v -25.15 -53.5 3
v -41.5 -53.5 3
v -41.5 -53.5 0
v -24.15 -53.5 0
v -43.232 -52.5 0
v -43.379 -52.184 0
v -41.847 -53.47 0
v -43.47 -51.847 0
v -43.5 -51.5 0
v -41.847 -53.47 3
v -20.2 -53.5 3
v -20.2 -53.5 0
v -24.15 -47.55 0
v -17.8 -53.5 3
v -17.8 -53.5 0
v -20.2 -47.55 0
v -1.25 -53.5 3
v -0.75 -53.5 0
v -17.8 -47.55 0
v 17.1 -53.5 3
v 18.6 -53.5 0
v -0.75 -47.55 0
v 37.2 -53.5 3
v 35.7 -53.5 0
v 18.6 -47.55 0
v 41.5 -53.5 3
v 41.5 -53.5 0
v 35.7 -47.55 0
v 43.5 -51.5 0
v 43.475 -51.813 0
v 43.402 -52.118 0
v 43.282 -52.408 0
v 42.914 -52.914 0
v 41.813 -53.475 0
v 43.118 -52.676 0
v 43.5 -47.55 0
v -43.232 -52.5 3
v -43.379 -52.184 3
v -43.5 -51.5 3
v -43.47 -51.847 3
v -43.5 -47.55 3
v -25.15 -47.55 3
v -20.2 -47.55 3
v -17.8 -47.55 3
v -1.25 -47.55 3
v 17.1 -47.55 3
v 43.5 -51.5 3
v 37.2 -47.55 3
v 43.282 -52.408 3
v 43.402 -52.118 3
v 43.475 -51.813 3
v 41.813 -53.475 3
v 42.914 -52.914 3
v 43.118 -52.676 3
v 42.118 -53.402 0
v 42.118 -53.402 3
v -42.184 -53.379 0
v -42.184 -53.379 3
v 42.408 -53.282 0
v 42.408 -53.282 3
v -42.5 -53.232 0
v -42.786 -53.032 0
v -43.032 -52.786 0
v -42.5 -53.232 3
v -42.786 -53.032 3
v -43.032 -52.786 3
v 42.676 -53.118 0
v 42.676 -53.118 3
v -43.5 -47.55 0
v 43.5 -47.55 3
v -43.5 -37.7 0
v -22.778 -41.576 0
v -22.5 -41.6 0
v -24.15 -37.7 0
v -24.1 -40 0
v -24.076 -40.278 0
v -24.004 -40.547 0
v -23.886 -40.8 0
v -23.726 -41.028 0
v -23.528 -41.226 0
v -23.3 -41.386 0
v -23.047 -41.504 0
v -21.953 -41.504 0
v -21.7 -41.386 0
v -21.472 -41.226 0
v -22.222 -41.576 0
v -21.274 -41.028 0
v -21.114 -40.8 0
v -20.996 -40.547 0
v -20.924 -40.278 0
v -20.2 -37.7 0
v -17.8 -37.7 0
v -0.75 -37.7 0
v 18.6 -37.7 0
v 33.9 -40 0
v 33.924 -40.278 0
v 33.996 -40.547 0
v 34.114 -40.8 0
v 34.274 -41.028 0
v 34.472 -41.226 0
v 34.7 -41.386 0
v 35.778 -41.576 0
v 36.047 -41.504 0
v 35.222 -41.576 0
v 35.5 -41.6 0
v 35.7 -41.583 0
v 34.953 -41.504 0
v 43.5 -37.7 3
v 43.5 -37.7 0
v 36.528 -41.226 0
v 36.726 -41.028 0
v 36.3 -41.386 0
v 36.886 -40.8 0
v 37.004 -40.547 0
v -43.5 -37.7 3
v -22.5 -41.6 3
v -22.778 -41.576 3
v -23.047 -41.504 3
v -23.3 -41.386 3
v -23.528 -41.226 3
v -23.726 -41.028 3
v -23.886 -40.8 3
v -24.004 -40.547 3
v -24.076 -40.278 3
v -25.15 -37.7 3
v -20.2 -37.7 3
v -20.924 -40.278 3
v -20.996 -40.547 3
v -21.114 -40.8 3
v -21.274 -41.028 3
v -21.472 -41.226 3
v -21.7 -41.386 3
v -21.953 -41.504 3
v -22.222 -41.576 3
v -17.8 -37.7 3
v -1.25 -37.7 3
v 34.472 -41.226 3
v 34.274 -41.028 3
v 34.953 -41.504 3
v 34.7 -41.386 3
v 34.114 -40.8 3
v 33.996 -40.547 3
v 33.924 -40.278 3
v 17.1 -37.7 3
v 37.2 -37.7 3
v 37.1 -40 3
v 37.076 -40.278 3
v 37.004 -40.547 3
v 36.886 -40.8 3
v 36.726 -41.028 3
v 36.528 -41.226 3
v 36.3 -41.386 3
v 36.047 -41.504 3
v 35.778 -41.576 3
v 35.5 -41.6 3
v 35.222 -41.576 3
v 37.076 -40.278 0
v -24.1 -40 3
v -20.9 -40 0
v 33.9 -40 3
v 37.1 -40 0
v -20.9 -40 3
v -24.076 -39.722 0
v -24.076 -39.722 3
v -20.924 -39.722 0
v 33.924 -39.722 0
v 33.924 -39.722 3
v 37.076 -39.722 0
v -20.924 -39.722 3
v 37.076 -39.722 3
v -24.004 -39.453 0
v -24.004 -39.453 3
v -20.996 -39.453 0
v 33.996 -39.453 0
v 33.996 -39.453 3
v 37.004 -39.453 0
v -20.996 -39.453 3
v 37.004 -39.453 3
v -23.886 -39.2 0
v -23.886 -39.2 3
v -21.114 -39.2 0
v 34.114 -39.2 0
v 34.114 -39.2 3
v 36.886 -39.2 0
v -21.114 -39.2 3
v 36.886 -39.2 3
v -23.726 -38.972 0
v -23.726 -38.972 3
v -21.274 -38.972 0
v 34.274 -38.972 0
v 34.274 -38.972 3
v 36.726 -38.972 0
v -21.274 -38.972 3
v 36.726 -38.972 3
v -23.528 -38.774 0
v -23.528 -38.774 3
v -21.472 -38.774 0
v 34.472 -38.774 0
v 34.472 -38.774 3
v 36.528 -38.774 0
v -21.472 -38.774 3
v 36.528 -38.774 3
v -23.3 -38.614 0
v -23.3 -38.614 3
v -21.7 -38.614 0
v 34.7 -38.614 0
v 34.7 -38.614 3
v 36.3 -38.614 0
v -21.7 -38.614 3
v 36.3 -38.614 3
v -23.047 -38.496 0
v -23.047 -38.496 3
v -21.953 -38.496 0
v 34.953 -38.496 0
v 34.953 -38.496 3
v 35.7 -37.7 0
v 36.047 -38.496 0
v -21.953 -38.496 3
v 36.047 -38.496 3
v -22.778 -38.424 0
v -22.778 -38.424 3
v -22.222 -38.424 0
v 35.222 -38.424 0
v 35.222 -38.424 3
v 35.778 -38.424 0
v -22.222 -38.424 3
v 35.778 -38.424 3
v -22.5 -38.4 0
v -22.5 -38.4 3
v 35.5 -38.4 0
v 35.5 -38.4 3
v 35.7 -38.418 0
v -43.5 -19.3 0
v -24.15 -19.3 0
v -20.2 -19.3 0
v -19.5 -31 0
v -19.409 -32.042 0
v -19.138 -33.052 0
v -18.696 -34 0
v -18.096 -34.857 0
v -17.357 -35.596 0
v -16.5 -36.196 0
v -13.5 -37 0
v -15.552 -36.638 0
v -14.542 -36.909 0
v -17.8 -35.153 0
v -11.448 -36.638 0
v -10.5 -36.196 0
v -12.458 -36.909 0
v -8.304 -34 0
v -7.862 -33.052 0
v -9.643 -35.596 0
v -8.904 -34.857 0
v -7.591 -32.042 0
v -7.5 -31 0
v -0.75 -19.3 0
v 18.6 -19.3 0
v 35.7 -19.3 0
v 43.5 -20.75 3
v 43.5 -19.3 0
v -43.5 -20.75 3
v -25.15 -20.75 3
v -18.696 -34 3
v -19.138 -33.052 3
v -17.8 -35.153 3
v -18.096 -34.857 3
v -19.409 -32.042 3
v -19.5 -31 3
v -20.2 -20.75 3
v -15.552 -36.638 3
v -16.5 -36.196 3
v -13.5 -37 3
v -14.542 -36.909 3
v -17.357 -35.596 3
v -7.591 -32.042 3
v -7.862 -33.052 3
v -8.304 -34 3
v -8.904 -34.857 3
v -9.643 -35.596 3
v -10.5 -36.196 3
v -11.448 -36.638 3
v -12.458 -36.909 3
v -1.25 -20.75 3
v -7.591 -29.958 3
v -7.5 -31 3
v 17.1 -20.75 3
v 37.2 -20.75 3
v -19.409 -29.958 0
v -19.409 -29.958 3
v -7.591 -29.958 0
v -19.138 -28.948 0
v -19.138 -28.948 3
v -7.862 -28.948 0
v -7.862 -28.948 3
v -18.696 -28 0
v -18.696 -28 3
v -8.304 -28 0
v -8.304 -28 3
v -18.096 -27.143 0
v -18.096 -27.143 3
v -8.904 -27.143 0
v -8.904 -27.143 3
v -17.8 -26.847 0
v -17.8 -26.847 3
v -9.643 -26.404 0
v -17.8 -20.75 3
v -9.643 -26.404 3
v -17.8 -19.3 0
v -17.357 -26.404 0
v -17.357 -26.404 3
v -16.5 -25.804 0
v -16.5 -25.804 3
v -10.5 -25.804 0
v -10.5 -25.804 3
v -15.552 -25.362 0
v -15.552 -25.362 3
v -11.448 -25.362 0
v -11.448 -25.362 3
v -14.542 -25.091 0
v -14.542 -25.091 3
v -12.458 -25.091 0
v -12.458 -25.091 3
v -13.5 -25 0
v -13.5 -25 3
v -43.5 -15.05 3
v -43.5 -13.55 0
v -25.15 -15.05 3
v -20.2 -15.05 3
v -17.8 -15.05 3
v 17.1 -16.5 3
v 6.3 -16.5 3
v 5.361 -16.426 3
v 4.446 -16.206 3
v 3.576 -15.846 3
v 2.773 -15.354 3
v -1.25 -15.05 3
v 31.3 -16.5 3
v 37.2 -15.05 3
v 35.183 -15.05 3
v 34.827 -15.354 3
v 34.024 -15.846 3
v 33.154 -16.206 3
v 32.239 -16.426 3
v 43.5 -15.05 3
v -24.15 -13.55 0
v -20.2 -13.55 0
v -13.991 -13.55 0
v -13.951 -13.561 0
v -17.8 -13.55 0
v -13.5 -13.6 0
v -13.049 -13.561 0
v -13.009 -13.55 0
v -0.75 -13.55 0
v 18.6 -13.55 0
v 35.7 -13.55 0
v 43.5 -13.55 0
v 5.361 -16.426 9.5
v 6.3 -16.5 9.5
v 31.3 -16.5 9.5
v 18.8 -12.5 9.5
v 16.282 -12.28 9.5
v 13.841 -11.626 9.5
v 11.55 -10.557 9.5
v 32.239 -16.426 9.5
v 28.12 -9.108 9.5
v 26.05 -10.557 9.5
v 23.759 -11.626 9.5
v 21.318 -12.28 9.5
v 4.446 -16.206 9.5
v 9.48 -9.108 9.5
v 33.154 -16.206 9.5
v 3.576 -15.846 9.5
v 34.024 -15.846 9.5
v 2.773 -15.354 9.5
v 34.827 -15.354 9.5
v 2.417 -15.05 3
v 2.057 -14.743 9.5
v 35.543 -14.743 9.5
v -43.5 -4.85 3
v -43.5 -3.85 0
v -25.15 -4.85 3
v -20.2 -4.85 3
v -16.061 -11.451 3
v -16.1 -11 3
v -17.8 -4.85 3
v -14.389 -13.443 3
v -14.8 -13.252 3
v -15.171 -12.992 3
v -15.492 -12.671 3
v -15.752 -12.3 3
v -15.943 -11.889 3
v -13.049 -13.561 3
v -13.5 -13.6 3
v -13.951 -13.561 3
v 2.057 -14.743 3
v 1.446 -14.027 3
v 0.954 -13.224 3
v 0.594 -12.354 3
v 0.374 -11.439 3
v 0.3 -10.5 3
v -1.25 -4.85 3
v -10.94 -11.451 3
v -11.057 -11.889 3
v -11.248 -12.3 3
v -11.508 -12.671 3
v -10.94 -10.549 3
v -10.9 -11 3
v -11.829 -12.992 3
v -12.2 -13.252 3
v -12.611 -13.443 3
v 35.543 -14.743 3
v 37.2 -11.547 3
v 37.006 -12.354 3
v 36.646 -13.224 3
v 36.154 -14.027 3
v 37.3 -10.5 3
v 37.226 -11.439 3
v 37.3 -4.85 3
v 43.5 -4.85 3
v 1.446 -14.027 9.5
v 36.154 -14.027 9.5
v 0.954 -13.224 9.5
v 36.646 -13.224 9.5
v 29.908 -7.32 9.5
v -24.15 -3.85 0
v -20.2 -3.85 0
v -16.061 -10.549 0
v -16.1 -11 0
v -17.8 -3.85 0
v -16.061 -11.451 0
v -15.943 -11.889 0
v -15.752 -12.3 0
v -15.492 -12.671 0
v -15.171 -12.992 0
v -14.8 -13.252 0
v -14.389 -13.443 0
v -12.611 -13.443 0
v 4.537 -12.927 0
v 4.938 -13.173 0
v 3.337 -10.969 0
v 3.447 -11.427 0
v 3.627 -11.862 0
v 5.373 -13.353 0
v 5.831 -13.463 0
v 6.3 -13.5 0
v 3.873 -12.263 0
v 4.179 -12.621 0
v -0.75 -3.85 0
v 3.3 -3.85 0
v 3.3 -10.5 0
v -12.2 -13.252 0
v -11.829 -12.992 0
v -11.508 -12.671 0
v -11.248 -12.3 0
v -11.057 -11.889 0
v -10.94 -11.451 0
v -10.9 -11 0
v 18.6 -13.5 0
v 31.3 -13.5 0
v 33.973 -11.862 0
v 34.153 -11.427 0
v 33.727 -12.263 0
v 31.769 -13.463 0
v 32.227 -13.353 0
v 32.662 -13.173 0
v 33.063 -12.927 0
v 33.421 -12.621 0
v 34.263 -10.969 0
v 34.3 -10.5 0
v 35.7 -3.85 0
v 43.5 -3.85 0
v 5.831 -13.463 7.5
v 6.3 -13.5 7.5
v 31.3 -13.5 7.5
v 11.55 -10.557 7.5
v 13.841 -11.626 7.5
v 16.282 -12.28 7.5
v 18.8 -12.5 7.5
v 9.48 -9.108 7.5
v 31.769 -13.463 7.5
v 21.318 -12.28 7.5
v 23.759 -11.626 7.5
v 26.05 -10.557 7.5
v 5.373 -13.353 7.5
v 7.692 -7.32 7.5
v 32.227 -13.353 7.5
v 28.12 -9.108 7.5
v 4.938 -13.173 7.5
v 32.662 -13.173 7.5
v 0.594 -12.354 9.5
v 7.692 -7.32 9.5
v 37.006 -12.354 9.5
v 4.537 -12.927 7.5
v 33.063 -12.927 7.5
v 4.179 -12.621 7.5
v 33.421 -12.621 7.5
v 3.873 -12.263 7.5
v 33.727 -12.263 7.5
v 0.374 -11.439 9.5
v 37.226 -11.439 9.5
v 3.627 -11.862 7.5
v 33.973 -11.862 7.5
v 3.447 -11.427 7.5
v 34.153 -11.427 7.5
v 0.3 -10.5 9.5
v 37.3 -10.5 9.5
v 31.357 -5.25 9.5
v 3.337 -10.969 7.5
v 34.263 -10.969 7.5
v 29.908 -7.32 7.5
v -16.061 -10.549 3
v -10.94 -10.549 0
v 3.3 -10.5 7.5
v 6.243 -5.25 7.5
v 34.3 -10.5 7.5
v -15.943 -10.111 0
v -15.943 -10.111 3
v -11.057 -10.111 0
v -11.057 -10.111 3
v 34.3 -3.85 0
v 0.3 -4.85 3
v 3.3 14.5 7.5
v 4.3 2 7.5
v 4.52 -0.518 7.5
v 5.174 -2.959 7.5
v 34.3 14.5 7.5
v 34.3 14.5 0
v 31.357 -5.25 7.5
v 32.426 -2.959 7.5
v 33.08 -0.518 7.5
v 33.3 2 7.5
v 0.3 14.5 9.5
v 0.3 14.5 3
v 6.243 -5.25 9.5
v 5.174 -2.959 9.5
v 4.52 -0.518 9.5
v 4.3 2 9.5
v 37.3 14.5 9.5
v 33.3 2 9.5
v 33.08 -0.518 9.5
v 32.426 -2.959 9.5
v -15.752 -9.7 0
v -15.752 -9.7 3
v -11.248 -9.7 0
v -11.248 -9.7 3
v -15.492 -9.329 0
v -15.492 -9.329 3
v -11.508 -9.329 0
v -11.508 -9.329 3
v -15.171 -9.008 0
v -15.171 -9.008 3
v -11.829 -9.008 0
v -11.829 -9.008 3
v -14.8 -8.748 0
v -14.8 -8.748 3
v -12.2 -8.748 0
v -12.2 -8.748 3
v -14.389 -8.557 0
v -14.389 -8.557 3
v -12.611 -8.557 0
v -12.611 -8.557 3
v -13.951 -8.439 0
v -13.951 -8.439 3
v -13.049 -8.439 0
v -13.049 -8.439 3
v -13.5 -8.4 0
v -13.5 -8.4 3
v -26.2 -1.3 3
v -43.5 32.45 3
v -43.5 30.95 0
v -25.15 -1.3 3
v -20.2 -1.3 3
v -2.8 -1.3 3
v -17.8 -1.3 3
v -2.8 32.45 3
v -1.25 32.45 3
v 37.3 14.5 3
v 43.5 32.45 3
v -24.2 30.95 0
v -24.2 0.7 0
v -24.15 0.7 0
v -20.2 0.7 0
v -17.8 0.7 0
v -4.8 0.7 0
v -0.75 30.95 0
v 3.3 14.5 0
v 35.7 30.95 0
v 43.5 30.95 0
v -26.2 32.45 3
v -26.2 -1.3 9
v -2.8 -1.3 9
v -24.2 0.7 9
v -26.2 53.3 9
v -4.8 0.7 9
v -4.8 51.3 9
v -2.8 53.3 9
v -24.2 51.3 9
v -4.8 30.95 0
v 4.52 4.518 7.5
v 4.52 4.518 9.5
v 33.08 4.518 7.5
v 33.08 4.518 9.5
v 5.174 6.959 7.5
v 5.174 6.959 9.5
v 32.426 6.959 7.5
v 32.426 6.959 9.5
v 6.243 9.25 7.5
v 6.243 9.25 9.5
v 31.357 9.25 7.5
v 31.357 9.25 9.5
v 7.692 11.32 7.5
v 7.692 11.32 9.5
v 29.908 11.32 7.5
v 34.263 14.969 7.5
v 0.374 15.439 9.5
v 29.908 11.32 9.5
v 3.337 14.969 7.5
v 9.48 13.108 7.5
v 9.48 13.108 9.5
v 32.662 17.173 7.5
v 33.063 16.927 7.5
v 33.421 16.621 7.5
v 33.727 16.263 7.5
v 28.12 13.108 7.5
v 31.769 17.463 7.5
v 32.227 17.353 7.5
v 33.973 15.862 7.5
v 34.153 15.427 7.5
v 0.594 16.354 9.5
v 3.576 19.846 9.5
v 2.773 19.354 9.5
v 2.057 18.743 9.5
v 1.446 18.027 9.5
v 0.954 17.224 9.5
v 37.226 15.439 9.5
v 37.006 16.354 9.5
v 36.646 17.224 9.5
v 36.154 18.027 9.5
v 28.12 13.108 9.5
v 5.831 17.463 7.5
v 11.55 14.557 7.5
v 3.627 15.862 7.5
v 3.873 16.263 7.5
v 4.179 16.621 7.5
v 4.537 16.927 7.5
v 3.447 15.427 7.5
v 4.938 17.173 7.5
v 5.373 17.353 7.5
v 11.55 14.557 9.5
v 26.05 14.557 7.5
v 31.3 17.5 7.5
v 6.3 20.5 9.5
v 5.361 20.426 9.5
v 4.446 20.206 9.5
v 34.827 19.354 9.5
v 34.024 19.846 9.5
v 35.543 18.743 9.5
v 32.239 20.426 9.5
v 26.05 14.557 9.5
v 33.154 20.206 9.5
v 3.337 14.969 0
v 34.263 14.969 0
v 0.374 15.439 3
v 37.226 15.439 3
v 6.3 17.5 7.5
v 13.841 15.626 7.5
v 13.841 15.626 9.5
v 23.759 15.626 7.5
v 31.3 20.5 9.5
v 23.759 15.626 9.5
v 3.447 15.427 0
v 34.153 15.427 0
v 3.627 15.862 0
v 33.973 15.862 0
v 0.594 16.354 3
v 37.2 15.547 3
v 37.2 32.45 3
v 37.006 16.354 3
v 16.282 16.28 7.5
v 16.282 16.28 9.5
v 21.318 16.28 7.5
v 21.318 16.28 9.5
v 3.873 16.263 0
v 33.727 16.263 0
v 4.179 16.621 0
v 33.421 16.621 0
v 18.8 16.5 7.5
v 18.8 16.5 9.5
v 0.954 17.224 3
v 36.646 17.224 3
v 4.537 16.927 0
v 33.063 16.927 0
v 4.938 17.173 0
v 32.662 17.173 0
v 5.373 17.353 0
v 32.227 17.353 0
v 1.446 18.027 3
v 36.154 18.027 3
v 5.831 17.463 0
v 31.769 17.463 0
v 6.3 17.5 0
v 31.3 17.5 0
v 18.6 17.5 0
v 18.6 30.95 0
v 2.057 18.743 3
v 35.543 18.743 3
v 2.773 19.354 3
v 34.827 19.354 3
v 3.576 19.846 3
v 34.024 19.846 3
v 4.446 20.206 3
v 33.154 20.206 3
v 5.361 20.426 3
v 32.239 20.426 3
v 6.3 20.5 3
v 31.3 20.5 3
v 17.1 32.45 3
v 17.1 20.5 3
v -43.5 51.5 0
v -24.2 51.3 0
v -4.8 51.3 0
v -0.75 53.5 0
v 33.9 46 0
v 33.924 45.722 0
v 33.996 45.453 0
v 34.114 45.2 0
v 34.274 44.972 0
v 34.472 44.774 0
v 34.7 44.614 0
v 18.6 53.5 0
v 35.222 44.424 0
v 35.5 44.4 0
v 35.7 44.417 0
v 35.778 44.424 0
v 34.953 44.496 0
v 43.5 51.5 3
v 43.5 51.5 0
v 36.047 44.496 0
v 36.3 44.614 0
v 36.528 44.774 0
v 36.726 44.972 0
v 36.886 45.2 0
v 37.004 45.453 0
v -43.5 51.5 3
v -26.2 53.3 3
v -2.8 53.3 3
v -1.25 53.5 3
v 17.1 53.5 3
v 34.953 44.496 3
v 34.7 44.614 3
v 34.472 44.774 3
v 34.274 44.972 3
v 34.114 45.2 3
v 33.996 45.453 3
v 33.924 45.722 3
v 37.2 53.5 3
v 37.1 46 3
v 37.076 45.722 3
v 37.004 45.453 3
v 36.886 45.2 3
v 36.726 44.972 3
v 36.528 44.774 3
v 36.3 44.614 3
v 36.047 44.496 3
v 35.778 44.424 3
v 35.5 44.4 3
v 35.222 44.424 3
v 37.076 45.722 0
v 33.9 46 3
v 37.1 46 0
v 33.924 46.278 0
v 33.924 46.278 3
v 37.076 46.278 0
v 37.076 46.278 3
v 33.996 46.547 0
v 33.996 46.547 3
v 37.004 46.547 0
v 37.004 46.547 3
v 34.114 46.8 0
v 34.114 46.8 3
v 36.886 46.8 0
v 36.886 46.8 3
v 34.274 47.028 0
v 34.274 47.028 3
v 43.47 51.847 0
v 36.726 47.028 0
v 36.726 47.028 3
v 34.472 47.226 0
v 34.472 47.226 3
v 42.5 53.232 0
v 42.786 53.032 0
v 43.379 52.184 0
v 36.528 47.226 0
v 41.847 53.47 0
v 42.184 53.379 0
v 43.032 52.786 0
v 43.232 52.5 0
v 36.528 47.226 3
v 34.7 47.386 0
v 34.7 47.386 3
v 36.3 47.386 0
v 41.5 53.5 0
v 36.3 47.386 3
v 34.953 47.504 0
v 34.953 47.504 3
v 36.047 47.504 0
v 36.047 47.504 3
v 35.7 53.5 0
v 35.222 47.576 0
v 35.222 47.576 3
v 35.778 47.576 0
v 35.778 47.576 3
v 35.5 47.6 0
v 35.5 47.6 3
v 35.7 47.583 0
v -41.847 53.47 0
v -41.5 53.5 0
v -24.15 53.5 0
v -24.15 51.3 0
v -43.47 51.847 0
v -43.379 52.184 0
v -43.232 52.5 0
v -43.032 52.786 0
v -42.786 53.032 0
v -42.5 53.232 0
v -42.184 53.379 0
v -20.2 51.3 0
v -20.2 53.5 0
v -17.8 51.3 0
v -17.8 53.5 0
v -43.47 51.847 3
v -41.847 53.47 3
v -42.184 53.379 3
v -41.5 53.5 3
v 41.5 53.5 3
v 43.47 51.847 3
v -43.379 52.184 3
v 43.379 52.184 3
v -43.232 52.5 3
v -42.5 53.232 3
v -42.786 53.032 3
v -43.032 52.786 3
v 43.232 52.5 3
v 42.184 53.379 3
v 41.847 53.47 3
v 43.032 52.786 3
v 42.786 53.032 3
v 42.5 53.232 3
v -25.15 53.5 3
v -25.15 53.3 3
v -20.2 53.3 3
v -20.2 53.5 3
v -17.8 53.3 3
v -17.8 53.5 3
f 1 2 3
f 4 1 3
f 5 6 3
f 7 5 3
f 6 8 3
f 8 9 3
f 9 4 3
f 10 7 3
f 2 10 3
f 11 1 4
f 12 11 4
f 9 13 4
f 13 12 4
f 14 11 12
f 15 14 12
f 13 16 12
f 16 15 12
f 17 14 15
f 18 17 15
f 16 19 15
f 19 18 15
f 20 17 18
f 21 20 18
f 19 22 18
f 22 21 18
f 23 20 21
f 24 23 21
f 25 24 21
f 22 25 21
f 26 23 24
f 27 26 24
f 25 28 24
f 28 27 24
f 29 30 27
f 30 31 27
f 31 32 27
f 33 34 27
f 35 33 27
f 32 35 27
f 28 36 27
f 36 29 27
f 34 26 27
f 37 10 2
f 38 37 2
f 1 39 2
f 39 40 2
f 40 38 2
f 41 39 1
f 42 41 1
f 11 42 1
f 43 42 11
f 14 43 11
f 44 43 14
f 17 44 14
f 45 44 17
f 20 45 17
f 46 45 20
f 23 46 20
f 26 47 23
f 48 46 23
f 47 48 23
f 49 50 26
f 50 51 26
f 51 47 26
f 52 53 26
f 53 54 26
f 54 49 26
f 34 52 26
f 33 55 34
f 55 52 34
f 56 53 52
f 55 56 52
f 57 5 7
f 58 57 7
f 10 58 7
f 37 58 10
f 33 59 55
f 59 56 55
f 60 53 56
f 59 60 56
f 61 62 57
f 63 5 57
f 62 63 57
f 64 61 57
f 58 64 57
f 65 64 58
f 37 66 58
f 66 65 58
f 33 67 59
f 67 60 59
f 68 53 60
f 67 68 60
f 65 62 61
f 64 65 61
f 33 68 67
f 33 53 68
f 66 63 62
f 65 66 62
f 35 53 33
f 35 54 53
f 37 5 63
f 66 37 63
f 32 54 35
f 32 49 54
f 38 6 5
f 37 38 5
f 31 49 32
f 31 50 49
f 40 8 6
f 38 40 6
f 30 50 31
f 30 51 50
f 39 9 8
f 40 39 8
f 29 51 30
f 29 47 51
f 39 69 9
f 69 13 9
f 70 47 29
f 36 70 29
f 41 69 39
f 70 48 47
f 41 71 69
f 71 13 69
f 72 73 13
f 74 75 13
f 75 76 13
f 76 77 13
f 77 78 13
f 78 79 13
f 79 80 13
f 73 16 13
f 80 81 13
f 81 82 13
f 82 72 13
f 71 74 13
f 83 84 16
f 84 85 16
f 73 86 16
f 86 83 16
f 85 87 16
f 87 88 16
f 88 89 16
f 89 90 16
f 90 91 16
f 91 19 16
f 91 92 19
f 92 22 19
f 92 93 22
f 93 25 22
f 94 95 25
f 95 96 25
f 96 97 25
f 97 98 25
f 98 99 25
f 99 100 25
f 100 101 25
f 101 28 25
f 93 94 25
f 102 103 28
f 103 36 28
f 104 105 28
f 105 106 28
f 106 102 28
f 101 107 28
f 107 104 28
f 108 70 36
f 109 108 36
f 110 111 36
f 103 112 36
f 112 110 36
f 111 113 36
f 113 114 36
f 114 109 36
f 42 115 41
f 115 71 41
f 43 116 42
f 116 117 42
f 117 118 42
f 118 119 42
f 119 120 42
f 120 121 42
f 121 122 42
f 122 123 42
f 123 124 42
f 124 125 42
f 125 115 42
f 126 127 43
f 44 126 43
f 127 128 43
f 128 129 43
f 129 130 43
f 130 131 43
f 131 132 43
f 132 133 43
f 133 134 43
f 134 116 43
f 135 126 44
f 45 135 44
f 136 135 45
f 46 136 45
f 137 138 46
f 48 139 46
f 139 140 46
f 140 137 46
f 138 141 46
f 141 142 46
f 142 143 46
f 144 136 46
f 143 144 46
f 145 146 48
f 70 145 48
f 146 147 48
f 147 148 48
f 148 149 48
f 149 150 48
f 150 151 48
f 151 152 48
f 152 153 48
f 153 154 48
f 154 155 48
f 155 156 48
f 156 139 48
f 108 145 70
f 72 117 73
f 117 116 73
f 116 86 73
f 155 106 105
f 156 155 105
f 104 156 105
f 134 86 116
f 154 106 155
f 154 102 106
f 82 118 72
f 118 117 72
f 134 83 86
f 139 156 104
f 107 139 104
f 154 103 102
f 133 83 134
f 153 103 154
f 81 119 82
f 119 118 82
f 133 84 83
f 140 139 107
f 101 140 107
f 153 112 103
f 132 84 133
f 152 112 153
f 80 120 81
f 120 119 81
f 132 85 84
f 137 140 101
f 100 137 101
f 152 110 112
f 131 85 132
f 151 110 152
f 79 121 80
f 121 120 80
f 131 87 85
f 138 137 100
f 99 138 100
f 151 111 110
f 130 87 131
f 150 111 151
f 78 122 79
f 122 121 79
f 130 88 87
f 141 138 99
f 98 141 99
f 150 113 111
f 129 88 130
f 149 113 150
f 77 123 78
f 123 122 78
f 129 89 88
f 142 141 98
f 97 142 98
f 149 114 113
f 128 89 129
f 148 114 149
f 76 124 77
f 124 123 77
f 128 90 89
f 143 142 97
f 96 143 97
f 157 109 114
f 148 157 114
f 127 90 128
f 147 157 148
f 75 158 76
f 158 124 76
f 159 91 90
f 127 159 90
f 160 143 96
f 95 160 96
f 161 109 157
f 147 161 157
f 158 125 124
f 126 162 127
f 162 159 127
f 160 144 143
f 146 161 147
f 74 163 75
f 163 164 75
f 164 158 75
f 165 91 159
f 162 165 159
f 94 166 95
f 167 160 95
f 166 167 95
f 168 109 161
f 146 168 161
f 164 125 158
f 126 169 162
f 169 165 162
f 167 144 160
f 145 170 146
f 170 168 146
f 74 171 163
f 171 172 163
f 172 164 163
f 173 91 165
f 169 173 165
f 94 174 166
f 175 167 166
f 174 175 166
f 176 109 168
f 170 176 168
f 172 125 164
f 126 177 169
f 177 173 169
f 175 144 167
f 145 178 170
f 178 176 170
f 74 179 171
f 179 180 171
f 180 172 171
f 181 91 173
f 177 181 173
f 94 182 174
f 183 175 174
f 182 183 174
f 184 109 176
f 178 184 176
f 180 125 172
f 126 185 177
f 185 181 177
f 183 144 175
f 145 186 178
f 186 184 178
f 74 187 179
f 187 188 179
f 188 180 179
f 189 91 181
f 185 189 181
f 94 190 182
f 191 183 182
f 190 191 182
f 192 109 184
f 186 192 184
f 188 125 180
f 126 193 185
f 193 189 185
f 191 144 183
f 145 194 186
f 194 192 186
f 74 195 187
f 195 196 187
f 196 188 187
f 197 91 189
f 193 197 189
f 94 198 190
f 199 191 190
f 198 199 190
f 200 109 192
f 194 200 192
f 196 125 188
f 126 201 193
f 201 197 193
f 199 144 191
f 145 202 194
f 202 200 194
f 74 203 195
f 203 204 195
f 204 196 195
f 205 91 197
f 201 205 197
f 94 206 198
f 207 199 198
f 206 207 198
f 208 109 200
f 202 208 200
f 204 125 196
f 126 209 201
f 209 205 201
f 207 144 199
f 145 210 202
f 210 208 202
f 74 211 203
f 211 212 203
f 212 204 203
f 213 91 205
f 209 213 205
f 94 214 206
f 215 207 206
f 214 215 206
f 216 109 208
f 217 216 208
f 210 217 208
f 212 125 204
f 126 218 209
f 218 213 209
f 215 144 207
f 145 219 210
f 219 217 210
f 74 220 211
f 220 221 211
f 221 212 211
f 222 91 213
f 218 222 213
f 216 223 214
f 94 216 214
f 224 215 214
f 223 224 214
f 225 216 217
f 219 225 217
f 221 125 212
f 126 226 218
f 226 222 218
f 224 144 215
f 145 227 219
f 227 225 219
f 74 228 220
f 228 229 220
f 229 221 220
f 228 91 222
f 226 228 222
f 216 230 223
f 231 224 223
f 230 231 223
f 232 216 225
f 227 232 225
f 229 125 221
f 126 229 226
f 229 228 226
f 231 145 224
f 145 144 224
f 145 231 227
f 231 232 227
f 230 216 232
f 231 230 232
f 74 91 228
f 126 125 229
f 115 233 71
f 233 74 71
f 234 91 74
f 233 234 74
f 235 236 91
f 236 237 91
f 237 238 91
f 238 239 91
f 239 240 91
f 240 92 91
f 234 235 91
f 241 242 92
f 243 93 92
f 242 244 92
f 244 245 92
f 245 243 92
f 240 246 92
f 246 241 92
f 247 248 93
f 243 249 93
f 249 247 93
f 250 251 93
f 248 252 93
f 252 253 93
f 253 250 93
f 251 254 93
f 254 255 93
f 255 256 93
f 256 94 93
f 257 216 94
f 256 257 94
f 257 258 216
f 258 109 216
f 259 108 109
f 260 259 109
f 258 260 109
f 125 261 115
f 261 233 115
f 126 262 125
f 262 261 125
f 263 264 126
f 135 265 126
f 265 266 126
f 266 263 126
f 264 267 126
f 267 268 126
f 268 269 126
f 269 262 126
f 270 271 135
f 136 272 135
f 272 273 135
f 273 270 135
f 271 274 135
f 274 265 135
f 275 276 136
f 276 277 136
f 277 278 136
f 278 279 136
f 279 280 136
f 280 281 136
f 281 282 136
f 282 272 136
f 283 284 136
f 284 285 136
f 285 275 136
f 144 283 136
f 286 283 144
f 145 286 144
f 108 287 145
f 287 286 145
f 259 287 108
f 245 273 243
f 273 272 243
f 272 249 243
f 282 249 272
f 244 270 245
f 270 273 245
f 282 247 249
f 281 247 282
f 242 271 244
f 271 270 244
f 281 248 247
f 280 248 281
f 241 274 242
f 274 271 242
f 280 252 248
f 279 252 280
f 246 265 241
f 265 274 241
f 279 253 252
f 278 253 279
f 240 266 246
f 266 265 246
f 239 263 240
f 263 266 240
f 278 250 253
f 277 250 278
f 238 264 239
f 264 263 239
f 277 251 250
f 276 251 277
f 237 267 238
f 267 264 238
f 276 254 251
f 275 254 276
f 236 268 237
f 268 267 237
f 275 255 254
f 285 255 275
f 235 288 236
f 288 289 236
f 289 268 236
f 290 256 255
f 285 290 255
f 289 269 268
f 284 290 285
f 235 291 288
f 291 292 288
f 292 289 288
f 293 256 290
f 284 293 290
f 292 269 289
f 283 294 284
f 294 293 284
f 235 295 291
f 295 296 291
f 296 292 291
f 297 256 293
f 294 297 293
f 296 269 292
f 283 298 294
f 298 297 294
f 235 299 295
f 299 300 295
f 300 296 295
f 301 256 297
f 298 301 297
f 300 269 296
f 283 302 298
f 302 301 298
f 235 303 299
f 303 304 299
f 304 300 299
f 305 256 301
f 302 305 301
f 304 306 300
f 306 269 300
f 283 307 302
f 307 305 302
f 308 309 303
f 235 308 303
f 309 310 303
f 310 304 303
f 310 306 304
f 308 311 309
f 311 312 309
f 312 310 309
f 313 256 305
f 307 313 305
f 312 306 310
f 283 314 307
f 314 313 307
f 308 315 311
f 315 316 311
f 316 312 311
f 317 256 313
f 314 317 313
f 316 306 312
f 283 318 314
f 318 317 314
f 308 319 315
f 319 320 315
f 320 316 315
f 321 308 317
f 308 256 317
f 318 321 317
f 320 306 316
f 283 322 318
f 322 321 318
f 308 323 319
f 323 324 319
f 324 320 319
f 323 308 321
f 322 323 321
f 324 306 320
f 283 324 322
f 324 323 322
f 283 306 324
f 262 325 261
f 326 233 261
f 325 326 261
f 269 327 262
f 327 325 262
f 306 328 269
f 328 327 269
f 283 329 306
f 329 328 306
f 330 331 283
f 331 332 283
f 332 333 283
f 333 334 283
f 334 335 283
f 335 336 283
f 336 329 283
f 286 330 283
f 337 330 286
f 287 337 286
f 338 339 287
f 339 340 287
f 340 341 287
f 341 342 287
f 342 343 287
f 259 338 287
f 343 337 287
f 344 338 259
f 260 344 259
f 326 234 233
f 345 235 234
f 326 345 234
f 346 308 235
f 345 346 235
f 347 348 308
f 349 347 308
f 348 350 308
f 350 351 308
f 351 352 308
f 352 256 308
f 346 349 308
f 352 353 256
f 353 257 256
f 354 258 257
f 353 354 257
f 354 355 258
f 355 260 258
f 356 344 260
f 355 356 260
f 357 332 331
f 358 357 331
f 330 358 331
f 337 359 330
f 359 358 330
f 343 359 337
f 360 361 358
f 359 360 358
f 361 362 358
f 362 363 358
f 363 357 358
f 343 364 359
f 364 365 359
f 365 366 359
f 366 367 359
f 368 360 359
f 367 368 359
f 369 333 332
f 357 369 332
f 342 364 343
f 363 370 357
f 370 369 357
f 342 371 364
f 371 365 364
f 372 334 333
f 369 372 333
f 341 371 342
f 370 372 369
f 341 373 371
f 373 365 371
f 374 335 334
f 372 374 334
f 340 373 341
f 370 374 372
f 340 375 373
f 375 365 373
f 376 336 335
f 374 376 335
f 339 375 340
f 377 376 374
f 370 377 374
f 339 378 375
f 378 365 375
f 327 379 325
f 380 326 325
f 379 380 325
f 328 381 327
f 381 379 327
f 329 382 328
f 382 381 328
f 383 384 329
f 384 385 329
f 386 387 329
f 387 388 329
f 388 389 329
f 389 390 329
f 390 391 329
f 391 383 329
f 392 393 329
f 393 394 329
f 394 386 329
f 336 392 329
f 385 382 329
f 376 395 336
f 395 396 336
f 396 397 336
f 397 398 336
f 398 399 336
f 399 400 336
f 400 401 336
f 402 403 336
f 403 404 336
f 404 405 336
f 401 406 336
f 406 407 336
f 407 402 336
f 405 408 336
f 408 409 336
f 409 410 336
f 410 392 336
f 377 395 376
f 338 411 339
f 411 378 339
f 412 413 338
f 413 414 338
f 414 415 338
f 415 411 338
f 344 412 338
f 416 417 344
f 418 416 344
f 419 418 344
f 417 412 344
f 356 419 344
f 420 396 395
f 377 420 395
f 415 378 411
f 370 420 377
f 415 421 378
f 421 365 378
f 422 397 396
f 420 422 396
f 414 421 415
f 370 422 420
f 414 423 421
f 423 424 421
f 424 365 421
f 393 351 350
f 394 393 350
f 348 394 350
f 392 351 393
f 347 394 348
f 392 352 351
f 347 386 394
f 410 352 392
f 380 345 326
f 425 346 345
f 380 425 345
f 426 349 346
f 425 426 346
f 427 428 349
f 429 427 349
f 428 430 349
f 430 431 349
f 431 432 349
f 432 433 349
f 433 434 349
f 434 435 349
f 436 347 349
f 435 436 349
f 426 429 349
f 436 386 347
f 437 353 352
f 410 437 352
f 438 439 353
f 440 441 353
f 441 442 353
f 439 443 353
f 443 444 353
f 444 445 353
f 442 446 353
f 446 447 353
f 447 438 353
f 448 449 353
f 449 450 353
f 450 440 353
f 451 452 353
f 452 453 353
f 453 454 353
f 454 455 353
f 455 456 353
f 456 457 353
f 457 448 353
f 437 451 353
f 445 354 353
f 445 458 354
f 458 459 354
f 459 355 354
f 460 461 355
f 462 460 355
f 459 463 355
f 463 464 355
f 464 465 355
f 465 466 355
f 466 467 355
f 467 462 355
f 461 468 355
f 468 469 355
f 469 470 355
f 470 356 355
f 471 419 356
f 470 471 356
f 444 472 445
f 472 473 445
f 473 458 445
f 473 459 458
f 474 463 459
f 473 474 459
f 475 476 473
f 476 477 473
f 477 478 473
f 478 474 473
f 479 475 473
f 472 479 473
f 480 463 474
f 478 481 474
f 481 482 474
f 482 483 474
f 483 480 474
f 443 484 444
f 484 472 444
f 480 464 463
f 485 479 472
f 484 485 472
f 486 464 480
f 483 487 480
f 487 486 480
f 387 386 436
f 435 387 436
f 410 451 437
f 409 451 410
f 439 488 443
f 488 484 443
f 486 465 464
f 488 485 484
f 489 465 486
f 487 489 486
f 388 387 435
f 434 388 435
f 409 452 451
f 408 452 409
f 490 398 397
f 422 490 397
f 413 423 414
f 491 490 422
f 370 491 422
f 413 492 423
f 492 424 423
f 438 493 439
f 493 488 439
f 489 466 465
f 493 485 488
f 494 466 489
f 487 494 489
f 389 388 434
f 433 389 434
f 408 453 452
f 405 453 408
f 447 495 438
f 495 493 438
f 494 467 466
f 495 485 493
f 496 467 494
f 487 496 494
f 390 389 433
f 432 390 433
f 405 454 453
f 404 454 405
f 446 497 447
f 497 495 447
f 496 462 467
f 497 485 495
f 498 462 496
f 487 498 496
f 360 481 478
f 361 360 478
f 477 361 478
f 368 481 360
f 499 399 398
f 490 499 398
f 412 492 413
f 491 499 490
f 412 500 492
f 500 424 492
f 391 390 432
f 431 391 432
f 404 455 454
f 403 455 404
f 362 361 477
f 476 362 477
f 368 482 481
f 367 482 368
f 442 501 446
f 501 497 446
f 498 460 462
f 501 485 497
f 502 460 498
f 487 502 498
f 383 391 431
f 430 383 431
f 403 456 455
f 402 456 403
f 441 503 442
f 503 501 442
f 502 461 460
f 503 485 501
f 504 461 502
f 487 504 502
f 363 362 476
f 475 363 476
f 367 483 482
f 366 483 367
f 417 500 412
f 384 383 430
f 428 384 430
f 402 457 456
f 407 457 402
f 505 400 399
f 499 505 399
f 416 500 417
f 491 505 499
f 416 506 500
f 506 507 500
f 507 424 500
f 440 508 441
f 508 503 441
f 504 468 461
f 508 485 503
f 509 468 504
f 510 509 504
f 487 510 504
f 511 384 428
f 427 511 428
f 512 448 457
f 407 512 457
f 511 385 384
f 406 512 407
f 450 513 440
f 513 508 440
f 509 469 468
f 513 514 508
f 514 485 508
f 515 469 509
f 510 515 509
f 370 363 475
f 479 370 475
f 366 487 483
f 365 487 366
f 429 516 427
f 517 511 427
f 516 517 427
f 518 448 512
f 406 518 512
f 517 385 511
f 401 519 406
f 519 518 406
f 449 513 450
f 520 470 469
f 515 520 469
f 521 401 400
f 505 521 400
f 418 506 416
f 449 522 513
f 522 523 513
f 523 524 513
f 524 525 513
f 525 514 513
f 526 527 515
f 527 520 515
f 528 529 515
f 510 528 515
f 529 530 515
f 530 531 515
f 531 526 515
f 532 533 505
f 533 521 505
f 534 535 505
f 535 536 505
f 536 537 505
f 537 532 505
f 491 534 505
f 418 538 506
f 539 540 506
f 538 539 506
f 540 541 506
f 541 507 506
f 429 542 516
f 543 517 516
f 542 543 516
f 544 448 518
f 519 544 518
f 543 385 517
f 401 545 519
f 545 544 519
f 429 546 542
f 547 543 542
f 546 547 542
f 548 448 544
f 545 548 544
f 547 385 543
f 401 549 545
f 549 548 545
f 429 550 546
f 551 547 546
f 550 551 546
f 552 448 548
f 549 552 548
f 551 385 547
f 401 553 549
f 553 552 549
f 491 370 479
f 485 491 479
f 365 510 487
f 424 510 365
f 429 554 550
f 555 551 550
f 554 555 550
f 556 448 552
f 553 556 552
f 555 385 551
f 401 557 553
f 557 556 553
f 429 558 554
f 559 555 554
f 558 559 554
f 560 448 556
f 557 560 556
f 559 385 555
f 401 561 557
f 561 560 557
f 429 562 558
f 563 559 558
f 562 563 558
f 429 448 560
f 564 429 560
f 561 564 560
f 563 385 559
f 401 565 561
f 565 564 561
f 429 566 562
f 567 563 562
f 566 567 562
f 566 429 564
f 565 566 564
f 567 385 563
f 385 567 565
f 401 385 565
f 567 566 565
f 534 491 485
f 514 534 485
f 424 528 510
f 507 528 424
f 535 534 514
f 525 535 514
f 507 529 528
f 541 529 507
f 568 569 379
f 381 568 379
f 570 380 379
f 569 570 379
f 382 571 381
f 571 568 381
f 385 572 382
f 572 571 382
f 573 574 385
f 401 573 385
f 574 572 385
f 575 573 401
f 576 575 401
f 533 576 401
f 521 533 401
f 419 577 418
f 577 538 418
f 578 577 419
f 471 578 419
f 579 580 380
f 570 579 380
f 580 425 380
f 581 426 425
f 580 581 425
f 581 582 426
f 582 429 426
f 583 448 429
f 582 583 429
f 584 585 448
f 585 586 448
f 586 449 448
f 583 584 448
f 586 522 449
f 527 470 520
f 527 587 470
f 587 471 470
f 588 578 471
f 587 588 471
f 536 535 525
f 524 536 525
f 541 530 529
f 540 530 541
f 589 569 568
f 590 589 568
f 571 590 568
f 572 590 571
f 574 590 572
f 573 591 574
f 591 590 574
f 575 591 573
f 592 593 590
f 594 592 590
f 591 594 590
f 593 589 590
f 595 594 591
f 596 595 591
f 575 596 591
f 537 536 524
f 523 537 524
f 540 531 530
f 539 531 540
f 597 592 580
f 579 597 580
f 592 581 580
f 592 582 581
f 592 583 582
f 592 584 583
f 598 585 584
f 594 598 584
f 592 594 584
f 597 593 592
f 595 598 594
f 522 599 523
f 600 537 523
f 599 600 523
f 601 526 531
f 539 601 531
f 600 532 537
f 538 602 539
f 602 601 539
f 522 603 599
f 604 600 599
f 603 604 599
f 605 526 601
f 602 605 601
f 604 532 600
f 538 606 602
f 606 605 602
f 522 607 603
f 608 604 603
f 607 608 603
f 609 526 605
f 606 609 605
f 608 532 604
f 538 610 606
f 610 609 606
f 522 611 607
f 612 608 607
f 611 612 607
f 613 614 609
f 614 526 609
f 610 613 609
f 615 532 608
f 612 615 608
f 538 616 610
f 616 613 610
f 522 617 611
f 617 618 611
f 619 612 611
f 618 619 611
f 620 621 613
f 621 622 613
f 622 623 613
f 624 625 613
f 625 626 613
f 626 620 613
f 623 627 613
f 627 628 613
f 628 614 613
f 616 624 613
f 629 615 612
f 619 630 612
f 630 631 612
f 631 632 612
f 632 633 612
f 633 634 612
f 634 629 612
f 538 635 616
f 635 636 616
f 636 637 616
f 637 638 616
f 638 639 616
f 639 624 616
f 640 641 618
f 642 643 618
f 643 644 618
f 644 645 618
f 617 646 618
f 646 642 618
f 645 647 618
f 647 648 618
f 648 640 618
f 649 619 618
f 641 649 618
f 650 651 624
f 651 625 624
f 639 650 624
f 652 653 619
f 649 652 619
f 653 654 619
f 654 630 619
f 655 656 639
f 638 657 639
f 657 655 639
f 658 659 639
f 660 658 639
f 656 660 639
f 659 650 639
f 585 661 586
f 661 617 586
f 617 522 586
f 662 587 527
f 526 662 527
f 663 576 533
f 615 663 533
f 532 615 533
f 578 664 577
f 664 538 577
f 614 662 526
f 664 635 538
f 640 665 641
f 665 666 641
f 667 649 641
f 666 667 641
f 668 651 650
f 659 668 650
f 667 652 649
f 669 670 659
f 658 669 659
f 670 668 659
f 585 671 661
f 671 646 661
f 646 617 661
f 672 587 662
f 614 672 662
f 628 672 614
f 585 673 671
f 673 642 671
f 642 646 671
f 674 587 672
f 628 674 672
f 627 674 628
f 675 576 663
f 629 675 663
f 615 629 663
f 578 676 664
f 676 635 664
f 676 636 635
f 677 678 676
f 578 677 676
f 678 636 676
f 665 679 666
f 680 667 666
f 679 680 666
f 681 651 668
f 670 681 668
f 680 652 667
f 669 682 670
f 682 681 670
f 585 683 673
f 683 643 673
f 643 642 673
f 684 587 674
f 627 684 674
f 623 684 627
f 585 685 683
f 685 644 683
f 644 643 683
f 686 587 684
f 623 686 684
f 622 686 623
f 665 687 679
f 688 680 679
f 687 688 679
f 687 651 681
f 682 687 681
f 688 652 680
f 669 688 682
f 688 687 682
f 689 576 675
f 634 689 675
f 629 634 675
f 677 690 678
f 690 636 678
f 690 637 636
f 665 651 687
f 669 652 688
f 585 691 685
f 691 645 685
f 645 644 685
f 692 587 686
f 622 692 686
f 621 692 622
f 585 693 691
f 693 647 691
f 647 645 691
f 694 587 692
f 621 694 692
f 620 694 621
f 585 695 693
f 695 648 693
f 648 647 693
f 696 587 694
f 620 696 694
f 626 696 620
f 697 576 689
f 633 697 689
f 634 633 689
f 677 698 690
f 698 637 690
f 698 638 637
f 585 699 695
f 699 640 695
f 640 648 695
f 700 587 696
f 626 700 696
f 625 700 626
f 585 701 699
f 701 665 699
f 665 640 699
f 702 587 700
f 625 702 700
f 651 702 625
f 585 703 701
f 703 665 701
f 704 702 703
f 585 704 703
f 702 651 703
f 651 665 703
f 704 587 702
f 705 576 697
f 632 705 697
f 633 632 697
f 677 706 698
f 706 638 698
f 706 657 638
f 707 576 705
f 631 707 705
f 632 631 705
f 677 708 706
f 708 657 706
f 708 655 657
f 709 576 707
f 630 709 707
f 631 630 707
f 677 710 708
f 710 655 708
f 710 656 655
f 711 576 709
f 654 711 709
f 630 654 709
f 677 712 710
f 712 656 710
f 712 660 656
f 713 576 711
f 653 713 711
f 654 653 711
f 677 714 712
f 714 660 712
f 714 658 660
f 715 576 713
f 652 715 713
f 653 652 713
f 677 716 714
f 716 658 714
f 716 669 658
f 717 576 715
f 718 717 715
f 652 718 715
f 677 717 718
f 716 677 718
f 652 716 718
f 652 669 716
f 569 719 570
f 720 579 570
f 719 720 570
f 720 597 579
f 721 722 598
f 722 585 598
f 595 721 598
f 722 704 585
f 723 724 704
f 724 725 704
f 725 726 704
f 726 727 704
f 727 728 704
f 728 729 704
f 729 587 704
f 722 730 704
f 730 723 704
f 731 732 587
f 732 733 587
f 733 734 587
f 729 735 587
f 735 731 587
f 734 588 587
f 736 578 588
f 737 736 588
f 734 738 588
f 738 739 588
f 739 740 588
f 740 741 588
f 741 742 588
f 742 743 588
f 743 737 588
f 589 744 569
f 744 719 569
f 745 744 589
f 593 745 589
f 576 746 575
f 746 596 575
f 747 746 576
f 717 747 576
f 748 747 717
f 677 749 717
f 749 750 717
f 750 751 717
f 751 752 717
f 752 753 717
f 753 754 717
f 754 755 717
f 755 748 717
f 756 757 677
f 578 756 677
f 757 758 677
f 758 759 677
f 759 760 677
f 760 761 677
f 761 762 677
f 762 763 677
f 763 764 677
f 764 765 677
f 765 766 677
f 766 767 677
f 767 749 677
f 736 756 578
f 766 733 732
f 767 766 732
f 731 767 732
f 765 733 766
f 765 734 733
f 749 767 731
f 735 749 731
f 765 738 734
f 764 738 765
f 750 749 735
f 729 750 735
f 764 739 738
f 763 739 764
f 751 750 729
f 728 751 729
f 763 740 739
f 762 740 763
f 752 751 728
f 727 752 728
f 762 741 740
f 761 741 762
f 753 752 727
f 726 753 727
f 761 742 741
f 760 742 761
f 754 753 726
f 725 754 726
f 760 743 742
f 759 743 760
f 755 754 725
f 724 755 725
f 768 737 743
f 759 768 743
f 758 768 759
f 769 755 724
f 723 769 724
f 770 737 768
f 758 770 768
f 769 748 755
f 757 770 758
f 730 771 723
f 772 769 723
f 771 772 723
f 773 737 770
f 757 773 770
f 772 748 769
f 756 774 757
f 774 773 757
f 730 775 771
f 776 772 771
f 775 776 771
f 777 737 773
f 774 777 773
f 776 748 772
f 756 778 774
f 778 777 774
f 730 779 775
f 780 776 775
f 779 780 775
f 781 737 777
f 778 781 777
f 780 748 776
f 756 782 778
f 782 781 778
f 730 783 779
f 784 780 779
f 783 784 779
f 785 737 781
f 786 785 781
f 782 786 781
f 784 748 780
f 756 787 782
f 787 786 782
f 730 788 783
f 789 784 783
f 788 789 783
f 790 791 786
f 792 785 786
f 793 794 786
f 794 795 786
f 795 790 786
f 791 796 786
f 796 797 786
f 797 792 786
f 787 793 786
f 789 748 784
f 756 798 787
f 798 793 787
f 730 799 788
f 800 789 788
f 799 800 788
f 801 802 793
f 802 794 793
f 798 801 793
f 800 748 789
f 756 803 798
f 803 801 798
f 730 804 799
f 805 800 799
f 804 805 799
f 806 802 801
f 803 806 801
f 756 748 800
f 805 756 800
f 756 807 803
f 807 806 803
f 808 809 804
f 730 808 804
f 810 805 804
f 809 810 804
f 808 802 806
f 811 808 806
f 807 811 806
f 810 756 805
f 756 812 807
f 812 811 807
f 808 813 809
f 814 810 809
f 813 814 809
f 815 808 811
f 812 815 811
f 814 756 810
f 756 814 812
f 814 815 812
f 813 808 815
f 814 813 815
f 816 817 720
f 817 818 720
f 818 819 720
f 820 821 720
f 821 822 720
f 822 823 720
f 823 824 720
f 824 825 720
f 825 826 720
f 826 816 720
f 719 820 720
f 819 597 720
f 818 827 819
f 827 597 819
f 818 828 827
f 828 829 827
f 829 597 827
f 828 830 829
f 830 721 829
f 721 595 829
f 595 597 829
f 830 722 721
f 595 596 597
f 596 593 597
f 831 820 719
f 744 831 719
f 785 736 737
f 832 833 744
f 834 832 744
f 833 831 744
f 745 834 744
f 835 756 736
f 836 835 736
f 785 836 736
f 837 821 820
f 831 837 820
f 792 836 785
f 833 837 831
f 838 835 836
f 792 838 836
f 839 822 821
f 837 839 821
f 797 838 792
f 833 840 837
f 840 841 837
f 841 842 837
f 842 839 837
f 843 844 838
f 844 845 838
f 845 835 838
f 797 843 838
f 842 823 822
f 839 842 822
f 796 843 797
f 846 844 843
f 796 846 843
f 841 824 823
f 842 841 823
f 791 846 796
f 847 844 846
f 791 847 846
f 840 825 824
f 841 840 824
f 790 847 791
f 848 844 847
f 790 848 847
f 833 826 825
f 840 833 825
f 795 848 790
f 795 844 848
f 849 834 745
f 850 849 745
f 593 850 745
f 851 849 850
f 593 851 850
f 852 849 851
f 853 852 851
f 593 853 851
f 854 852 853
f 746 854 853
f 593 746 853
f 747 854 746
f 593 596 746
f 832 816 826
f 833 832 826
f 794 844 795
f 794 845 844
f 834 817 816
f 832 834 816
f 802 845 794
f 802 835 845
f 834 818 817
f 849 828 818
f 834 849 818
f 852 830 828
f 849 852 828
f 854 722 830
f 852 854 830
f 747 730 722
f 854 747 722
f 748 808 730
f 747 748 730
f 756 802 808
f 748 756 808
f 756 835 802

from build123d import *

# Parameters (mm, degrees)
IZIM1_W                 = 87
IZIM1_H                 = 107
TAPA_DEPTH              = 3
REDONDEO1_R             = 2
IZIM3_R                 = 1.6
HUECOSPLACA_DEPTH       = 3
IZIM2_R                 = 1.6
HUECODISIPADOR_DEPTH    = 3
HUECOFAN_DEPTH          = 10
SALIENTE_EXTRUIR4_START = 4.5
SALIENTE_EXTRUIR4_DEPTH = 4.5
SALIENTE_EXTRUIR5_START = -3
CROQUIS8_W              = 37.30700553
CROQUIS8_H              = 38.753013496
SALIENTE_EXTRUIR5_DEPTH = 3
SALIENTE_EXTRUIR6_START = 2
CROQUIS9_R              = 14.5
SALIENTE_EXTRUIR6_DEPTH = 2
CROQUIS10_R             = 2.6
CROQUIS10_R_2           = 6
LEDANDBUZZER_DEPTH      = 10
CROQUIS11_W             = 19.4
CROQUIS11_H             = 50.6
DISPLAY_DEPTH           = 10
CROQUIS12_W             = 23.4
CROQUIS12_H             = 54.6
CROQUIS12_W_2           = 19.4
CROQUIS12_H_2           = 50.6
SALIENTE_EXTRUIR7_DEPTH = 6


with BuildPart() as part:
    # Çizim1 → Tapa (new body)
    with BuildSketch(Plane.XY):
        Rectangle(IZIM1_W, IZIM1_H)
    extrude(amount=TAPA_DEPTH)

    # Redondeo1
    redondeo1_edges = [part.edges().sort_by_distance(p)[0] for p in [
        (43.5, -53.5, 1.5),
        (-43.5, -53.5, 1.5),
        (-43.5, 53.5, 1.5),
        (43.5, 53.5, 1.5),
    ]]
    fillet(redondeo1_edges, radius=REDONDEO1_R)

    # Çizim3 → HuecosPlaca (cut)
    with BuildSketch(Plane.XY.offset(3)):
        with Locations((35.5, 46)):
            Circle(IZIM3_R)
        with Locations((35.5, -40)):
            Circle(IZIM3_R)
        with Locations(Location((-22.5, 46, 0), (0, 0, 180))):
            Circle(IZIM3_R)
        with Locations(Location((-22.5, -40, 0), (0, 0, 180))):
            Circle(IZIM3_R)
    extrude(amount=-HUECOSPLACA_DEPTH, mode=Mode.SUBTRACT)

    # Çizim2 → HuecoDisipador (cut)
    with BuildSketch(Plane.XY.offset(3)):
        with Locations((34.8, 18)):
            Circle(IZIM2_R)
        with Locations((34.8, -14)):
            Circle(IZIM2_R)
        with Locations(Location((2.8, -14, 0), (0, 0, 180))):
            Circle(IZIM2_R)
        with Locations(Location((2.8, 18, 0), (0, 0, 180))):
            Circle(IZIM2_R)
    extrude(amount=-HUECODISIPADOR_DEPTH, mode=Mode.SUBTRACT)

    # Croquis1 → HuecoFan (cut)
    with BuildSketch(Plane.XY.offset(3)):
        with BuildLine():
            Line((6.3, -13.5), (31.3, -13.5))
            ThreePointArc((31.3, -13.5), (33.421320344, -12.621320344), (34.3, -10.5))
            Line((34.3, -10.5), (34.3, 14.5))
            ThreePointArc((34.3, 14.5), (33.421320344, 16.621320344), (31.3, 17.5))
            Line((31.3, 17.5), (6.3, 17.5))
            ThreePointArc((6.3, 17.5), (4.178679656, 16.621320344), (3.3, 14.5))
            Line((3.3, 14.5), (3.3, -10.5))
            ThreePointArc((3.3, -10.5), (4.178679656, -12.621320344), (6.3, -13.5))
        make_face()
    extrude(amount=-HUECOFAN_DEPTH, mode=Mode.SUBTRACT)

    # Croquis7 → Saliente-Extruir4 (add)
    with BuildSketch(Plane.XY.offset(3).offset(SALIENTE_EXTRUIR4_START)):
        with BuildLine():
            Line((6.3, -16.5), (31.3, -16.5))
            ThreePointArc((31.3, -16.5), (35.542640687, -14.742640687), (37.3, -10.5))
            Line((37.3, -10.5), (37.3, 14.5))
            ThreePointArc((37.3, 14.5), (35.542640687, 18.742640687), (31.3, 20.5))
            Line((31.3, 20.5), (6.3, 20.5))
            ThreePointArc((6.3, 20.5), (2.057359313, 18.742640687), (0.3, 14.5))
            Line((0.3, 14.5), (0.3, -10.5))
            ThreePointArc((0.3, -10.5), (2.057359313, -14.742640687), (6.3, -16.5))
        make_face()
        with BuildLine():
            Line((6.3, -13.5), (31.3, -13.5))
            ThreePointArc((31.3, -13.5), (33.421320344, -12.621320344), (34.3, -10.5))
            Line((34.3, -10.5), (34.3, 14.5))
            ThreePointArc((34.3, 14.5), (33.421320344, 16.621320344), (31.3, 17.5))
            Line((31.3, 17.5), (6.3, 17.5))
            ThreePointArc((6.3, 17.5), (4.178679656, 16.621320344), (3.3, 14.5))
            Line((3.3, 14.5), (3.3, -10.5))
            ThreePointArc((3.3, -10.5), (4.178679656, -12.621320344), (6.3, -13.5))
        make_face(mode=Mode.SUBTRACT)
    extrude(amount=-SALIENTE_EXTRUIR4_DEPTH)

    # Croquis8 → Saliente-Extruir5 (add)
    with BuildSketch(Plane(origin=(0, 0, 0), x_dir=(-1, 0, 0), z_dir=(0, 0, -1)).offset(SALIENTE_EXTRUIR5_START)):
        with Locations((-18.653502765, 2.530513941)):
            Rectangle(CROQUIS8_W, CROQUIS8_H)
        with BuildLine():
            Line((-3.3, -10.5), (-3.3, 14.5))
            ThreePointArc((-3.3, 14.5), (-4.178679656, 16.621320344), (-6.3, 17.5))
            Line((-6.3, 17.5), (-31.3, 17.5))
            ThreePointArc((-31.3, 17.5), (-33.421320344, 16.621320344), (-34.3, 14.5))
            Line((-34.3, 14.5), (-34.3, -10.5))
            ThreePointArc((-34.3, -10.5), (-33.421320344, -12.621320344), (-31.3, -13.5))
            Line((-31.3, -13.5), (-6.3, -13.5))
            ThreePointArc((-6.3, -13.5), (-4.178679656, -12.621320344), (-3.3, -10.5))
        make_face(mode=Mode.SUBTRACT)
    extrude(amount=SALIENTE_EXTRUIR5_DEPTH)

    # Croquis9 → Saliente-Extruir6 (add)
    with BuildSketch(Plane.XY.offset(7.5).offset(SALIENTE_EXTRUIR6_START)):
        with BuildLine():
            Line((6.3, -16.5), (31.3, -16.5))
            ThreePointArc((31.3, -16.5), (35.542640687, -14.742640687), (37.3, -10.5))
            Line((37.3, -10.5), (37.3, 14.5))
            ThreePointArc((37.3, 14.5), (35.542640687, 18.742640687), (31.3, 20.5))
            Line((31.3, 20.5), (6.3, 20.5))
            ThreePointArc((6.3, 20.5), (2.057359313, 18.742640687), (0.3, 14.5))
            Line((0.3, 14.5), (0.3, -10.5))
            ThreePointArc((0.3, -10.5), (2.057359313, -14.742640687), (6.3, -16.5))
        make_face()
        with Locations((18.8, 2)):
            Circle(CROQUIS9_R, mode=Mode.SUBTRACT)
    extrude(amount=-SALIENTE_EXTRUIR6_DEPTH)

    # Croquis10 → LEDandBUZZER (cut)
    with BuildSketch(Plane.XY.offset(3)):
        with Locations((-13.5, -11)):
            Circle(CROQUIS10_R)
        with Locations((-13.5, -31)):
            Circle(CROQUIS10_R_2)
    extrude(amount=-LEDANDBUZZER_DEPTH, mode=Mode.SUBTRACT)

    # Croquis11 → DISPLAY (cut)
    with BuildSketch(Plane.XY.offset(3)):
        with Locations((-14.5, 26)):
            Rectangle(CROQUIS11_W, CROQUIS11_H)
    extrude(amount=-DISPLAY_DEPTH, mode=Mode.SUBTRACT)

    # Croquis12 → Saliente-Extruir7 (add)
    with BuildSketch(Plane.XY.offset(3)):
        with Locations((-14.5, 26)):
            Rectangle(CROQUIS12_W, CROQUIS12_H)
        with Locations((-14.5, 26)):
            Rectangle(CROQUIS12_W_2, CROQUIS12_H_2, mode=Mode.SUBTRACT)
    extrude(amount=SALIENTE_EXTRUIR7_DEPTH)


solid = part.part
